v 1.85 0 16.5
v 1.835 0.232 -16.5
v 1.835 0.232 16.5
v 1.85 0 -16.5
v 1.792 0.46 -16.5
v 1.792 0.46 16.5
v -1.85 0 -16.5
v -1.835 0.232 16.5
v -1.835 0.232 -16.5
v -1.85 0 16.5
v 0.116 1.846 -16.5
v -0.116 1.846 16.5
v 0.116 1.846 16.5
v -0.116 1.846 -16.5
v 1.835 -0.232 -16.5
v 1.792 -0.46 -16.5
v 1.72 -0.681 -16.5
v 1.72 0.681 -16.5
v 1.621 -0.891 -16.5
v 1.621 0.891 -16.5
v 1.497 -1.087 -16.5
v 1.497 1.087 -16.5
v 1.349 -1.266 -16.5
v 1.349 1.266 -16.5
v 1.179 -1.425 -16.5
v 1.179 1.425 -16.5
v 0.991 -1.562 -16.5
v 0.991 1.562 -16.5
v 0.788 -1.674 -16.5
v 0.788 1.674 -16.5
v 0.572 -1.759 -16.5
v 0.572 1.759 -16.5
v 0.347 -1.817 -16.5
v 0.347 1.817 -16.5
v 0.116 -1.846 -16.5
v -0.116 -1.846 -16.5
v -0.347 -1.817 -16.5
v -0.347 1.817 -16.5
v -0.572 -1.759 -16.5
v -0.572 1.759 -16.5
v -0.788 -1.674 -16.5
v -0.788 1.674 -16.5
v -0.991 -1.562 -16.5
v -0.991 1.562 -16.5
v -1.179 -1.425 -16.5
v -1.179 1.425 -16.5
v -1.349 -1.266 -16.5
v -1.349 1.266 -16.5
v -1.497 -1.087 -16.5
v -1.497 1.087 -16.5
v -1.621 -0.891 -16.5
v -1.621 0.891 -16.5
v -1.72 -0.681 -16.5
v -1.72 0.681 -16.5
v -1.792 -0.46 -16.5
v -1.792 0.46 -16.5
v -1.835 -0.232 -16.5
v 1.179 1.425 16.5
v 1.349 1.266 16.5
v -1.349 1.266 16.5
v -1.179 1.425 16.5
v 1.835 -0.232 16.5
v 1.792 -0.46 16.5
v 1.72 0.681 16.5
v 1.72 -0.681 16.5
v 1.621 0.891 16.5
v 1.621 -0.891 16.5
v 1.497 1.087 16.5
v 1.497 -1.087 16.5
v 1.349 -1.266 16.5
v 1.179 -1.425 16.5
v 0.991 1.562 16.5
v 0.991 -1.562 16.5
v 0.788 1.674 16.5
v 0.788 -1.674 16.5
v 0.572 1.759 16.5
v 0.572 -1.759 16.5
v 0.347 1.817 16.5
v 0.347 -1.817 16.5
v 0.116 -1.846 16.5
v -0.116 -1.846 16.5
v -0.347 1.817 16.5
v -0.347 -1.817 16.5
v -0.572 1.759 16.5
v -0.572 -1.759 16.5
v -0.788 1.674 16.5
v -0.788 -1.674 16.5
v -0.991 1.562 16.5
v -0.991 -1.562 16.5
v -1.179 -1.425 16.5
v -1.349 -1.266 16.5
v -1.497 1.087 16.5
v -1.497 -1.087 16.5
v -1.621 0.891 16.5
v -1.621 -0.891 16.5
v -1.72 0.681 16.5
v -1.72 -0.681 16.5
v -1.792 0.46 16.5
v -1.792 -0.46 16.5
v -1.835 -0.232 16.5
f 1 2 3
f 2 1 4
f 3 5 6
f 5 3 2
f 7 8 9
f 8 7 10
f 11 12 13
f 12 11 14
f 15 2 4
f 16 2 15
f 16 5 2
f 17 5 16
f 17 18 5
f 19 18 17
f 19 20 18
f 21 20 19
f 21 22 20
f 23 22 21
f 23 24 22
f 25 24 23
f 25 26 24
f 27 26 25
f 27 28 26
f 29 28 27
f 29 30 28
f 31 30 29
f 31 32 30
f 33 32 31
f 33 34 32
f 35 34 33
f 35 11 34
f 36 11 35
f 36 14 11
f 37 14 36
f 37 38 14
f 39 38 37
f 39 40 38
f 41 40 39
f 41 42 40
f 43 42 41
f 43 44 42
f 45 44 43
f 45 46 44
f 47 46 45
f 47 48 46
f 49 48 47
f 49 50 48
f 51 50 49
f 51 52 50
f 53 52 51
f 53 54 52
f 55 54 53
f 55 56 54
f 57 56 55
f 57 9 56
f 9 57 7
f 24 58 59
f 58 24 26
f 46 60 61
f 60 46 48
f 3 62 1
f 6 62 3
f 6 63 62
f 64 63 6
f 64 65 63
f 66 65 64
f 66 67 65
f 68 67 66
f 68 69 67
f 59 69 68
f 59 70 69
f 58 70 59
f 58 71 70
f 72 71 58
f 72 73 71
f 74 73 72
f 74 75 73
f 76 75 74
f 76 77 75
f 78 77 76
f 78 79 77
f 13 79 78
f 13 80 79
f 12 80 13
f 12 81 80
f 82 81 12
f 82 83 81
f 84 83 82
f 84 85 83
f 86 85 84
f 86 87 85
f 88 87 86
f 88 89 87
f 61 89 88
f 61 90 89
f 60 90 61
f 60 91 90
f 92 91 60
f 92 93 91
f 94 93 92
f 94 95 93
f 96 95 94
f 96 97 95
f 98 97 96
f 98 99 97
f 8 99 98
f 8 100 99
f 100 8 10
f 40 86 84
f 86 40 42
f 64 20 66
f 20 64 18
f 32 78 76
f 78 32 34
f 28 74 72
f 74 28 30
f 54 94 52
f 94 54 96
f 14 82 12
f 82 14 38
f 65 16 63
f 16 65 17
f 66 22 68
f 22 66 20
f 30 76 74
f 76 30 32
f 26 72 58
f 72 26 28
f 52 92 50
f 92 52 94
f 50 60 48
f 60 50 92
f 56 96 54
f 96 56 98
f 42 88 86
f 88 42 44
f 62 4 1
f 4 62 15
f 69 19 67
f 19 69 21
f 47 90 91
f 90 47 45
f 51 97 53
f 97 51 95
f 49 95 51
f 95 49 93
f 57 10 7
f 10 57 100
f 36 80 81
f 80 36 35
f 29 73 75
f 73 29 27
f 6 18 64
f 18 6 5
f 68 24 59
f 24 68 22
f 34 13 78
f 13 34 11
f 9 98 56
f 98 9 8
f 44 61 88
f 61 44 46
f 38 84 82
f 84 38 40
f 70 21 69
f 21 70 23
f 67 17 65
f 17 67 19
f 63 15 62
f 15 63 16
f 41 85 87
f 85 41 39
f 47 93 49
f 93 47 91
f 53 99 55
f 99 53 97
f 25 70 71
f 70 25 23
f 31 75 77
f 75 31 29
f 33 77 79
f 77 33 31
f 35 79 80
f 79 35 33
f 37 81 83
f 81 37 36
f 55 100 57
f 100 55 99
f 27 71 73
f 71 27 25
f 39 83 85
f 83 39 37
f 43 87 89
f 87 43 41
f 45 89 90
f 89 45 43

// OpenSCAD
$fn = 50;


difference() {
	union() {
		translate(v = [0, 0, -16.5000000000]) {
			cylinder(h = 33, r = 1.8500000000);
		}
	}
	union() {
		translate(v = [0, 0, -100.0000000000]) {
			cylinder(h = 200, r = 0);
		}
	}
}
